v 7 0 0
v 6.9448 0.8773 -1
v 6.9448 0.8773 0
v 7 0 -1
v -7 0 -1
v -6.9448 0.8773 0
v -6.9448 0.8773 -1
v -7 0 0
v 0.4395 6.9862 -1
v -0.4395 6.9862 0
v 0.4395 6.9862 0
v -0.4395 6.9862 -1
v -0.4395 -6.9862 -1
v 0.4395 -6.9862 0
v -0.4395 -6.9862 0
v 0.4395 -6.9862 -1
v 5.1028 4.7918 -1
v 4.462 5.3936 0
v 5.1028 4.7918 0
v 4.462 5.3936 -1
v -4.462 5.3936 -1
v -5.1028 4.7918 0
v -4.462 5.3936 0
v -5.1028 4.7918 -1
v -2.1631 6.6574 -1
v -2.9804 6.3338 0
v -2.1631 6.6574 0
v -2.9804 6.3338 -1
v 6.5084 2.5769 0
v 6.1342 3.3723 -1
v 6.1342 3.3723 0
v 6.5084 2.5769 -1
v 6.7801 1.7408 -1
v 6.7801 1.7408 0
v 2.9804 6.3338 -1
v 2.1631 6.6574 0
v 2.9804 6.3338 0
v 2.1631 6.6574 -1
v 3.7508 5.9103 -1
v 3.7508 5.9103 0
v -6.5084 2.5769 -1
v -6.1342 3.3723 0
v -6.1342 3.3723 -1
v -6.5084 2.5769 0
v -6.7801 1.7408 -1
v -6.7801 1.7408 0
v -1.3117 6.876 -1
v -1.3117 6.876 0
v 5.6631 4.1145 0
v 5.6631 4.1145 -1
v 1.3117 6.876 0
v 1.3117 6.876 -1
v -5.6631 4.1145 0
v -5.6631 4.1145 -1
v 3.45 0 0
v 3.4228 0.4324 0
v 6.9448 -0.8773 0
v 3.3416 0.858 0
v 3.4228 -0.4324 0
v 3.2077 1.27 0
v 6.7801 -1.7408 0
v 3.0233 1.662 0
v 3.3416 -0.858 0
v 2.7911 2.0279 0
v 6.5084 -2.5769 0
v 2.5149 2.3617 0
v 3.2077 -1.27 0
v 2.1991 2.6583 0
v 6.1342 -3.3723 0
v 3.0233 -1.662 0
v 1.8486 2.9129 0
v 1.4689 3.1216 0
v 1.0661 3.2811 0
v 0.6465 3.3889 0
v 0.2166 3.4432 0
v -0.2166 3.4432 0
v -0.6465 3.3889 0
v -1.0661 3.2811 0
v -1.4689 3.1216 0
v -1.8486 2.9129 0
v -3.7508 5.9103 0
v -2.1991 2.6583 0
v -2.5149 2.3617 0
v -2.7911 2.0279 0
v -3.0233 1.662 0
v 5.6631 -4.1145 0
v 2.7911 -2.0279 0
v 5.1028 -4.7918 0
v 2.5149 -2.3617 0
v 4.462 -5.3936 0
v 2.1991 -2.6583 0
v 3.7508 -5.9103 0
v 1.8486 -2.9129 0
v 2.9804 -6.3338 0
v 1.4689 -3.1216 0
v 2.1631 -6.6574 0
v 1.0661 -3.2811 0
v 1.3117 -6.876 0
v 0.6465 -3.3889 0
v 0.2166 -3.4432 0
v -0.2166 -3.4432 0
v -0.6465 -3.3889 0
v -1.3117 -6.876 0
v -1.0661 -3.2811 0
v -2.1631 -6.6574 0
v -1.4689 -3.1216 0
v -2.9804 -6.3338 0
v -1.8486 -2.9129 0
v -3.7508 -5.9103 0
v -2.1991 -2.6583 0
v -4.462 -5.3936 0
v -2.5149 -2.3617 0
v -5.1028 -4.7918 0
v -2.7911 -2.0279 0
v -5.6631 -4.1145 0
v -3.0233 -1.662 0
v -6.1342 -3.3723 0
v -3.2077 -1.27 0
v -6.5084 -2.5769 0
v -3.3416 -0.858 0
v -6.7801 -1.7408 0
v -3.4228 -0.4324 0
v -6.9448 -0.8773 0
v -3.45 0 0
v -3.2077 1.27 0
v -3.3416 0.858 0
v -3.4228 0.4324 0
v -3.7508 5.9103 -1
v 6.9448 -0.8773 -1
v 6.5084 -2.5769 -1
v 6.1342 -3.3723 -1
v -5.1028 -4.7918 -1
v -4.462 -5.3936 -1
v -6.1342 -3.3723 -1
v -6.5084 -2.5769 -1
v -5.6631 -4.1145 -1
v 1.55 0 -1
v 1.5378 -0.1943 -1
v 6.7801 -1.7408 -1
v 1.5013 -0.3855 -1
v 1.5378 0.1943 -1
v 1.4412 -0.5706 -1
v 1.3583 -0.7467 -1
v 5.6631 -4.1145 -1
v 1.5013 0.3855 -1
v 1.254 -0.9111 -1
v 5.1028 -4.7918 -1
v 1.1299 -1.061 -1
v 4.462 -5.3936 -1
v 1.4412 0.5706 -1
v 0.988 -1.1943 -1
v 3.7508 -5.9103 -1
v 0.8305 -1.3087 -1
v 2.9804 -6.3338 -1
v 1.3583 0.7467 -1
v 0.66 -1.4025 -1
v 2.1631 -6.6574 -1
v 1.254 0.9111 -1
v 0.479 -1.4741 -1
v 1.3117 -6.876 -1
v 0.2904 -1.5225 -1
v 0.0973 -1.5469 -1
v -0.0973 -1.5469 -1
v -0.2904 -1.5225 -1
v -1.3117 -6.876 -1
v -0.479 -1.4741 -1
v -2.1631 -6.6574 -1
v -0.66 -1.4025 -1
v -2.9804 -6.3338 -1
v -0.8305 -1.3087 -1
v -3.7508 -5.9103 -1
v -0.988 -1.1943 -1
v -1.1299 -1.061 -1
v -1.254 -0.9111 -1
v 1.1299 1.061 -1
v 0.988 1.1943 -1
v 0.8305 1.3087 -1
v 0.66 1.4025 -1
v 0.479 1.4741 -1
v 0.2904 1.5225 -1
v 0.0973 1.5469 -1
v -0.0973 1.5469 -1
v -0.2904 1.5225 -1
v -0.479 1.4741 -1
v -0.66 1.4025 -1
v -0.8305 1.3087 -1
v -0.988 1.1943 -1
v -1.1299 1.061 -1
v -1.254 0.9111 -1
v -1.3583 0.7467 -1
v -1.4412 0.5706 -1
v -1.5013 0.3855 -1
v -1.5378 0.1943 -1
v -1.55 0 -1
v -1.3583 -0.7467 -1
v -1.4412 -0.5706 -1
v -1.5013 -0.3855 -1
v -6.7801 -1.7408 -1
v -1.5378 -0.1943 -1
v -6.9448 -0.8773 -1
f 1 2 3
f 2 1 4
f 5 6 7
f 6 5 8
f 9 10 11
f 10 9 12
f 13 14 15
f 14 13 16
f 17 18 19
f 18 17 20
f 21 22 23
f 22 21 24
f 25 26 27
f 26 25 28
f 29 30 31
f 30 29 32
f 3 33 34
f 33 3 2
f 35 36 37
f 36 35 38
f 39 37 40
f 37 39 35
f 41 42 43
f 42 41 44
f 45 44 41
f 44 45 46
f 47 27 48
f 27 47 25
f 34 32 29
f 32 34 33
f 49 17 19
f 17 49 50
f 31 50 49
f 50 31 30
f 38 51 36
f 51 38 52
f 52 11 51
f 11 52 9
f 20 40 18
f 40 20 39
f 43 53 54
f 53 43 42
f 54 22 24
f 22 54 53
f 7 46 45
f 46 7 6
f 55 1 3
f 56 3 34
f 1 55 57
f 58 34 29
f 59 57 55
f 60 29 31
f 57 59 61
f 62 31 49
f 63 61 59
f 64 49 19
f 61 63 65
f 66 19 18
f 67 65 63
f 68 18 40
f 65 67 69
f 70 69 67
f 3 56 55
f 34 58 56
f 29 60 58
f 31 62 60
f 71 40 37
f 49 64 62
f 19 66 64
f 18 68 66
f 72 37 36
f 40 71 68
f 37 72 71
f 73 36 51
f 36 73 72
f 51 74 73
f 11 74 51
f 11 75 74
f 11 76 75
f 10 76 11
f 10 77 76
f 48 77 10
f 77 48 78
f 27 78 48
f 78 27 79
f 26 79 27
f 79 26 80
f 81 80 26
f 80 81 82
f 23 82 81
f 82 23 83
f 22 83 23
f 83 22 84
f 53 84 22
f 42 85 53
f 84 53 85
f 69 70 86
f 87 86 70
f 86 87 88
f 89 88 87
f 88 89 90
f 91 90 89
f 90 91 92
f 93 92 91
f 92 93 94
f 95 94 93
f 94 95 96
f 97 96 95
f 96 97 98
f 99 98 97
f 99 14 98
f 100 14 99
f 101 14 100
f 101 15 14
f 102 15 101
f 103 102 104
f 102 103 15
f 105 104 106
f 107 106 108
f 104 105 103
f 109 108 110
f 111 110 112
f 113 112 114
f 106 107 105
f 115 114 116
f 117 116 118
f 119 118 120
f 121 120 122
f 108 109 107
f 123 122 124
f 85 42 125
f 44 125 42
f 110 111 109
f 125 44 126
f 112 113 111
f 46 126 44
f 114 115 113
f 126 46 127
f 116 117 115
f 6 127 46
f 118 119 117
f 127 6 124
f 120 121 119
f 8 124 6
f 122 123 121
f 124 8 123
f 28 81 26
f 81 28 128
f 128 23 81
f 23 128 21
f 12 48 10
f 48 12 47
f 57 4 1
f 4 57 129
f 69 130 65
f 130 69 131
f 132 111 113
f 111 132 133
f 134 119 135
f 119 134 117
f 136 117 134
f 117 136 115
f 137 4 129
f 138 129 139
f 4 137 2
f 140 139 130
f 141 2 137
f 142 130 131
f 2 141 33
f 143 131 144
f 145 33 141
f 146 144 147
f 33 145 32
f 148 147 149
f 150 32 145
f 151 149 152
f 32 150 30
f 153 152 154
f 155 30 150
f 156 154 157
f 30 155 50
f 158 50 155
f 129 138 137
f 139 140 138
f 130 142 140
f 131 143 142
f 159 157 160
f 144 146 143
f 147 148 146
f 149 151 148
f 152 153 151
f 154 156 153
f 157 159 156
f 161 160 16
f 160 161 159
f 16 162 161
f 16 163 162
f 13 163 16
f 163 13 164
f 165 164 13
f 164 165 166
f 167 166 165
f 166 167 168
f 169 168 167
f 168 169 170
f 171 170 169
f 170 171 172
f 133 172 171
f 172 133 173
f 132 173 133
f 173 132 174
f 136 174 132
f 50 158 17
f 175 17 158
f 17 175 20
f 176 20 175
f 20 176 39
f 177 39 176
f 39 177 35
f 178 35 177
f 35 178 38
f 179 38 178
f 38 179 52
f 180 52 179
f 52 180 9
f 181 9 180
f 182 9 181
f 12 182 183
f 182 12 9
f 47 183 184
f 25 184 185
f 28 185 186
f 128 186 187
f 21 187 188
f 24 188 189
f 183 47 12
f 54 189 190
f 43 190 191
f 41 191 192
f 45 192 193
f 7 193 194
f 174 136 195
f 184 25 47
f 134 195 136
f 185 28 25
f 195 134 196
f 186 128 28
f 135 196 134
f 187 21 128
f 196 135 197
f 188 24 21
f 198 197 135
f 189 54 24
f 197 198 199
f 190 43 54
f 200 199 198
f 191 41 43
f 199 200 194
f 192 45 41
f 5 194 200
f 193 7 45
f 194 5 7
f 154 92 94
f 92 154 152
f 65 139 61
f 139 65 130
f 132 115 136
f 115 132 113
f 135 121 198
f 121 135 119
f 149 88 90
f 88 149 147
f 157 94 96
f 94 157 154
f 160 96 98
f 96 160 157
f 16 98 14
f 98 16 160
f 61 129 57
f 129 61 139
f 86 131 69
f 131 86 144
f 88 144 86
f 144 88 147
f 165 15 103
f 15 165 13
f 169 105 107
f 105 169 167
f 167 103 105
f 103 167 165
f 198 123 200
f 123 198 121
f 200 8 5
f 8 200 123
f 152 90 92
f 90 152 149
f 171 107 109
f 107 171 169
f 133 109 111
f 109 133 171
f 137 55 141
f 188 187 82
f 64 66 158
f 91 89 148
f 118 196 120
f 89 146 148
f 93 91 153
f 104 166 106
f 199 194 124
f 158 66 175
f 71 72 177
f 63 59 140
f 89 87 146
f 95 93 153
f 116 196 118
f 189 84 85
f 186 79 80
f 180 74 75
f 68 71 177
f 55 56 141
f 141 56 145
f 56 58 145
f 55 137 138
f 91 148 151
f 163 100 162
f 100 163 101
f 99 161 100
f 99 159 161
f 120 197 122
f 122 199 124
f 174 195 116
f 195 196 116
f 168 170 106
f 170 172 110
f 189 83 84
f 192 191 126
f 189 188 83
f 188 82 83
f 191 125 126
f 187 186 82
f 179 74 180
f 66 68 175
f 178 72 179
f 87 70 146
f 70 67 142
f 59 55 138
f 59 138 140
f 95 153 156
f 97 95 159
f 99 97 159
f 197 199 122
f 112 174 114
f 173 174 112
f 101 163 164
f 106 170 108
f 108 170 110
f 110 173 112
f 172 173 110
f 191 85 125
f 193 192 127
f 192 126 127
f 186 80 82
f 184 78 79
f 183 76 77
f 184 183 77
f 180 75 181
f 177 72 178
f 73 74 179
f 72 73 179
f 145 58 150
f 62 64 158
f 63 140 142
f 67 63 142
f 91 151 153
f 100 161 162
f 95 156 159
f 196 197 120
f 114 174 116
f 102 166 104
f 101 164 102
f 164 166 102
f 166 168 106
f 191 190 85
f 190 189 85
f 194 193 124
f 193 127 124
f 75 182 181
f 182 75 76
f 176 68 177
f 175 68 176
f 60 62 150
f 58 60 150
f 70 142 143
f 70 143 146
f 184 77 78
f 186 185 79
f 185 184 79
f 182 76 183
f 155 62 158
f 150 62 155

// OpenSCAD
$fn = 50;


difference() {
	union() {
		translate(v = [0, 0, -1.0000000000]) {
			cylinder(h = 1.0000000000, r = 7.0000000000);
		}
		translate(v = [0, 0, -1.0000000000]) {
			cylinder(h = 1.0000000000, r = 2.8750000000);
		}
	}
	union() {
		translate(v = [0, 0, 0]) {
			rotate(a = [0, 0, 0]) {
				difference() {
					union() {
						#translate(v = [0, 0, -1.0000000000]) {
							cylinder(h = 1.0000000000, r = 1.2500000000);
						}
						#translate(v = [0, 0, -1.0000000000]) {
							cylinder(h = 1.0000000000, r1 = 1.5500000000, r2 = 3.4500000000);
						}
						#translate(v = [0, 0, -1.0000000000]) {
							cylinder(h = 1.0000000000, r = 1.5500000000);
						}
						#translate(v = [0, 0, -1.0000000000]) {
							cylinder(h = 1.0000000000, r = 1.2500000000);
						}
					}
					union();
				}
			}
		}
	}
}
